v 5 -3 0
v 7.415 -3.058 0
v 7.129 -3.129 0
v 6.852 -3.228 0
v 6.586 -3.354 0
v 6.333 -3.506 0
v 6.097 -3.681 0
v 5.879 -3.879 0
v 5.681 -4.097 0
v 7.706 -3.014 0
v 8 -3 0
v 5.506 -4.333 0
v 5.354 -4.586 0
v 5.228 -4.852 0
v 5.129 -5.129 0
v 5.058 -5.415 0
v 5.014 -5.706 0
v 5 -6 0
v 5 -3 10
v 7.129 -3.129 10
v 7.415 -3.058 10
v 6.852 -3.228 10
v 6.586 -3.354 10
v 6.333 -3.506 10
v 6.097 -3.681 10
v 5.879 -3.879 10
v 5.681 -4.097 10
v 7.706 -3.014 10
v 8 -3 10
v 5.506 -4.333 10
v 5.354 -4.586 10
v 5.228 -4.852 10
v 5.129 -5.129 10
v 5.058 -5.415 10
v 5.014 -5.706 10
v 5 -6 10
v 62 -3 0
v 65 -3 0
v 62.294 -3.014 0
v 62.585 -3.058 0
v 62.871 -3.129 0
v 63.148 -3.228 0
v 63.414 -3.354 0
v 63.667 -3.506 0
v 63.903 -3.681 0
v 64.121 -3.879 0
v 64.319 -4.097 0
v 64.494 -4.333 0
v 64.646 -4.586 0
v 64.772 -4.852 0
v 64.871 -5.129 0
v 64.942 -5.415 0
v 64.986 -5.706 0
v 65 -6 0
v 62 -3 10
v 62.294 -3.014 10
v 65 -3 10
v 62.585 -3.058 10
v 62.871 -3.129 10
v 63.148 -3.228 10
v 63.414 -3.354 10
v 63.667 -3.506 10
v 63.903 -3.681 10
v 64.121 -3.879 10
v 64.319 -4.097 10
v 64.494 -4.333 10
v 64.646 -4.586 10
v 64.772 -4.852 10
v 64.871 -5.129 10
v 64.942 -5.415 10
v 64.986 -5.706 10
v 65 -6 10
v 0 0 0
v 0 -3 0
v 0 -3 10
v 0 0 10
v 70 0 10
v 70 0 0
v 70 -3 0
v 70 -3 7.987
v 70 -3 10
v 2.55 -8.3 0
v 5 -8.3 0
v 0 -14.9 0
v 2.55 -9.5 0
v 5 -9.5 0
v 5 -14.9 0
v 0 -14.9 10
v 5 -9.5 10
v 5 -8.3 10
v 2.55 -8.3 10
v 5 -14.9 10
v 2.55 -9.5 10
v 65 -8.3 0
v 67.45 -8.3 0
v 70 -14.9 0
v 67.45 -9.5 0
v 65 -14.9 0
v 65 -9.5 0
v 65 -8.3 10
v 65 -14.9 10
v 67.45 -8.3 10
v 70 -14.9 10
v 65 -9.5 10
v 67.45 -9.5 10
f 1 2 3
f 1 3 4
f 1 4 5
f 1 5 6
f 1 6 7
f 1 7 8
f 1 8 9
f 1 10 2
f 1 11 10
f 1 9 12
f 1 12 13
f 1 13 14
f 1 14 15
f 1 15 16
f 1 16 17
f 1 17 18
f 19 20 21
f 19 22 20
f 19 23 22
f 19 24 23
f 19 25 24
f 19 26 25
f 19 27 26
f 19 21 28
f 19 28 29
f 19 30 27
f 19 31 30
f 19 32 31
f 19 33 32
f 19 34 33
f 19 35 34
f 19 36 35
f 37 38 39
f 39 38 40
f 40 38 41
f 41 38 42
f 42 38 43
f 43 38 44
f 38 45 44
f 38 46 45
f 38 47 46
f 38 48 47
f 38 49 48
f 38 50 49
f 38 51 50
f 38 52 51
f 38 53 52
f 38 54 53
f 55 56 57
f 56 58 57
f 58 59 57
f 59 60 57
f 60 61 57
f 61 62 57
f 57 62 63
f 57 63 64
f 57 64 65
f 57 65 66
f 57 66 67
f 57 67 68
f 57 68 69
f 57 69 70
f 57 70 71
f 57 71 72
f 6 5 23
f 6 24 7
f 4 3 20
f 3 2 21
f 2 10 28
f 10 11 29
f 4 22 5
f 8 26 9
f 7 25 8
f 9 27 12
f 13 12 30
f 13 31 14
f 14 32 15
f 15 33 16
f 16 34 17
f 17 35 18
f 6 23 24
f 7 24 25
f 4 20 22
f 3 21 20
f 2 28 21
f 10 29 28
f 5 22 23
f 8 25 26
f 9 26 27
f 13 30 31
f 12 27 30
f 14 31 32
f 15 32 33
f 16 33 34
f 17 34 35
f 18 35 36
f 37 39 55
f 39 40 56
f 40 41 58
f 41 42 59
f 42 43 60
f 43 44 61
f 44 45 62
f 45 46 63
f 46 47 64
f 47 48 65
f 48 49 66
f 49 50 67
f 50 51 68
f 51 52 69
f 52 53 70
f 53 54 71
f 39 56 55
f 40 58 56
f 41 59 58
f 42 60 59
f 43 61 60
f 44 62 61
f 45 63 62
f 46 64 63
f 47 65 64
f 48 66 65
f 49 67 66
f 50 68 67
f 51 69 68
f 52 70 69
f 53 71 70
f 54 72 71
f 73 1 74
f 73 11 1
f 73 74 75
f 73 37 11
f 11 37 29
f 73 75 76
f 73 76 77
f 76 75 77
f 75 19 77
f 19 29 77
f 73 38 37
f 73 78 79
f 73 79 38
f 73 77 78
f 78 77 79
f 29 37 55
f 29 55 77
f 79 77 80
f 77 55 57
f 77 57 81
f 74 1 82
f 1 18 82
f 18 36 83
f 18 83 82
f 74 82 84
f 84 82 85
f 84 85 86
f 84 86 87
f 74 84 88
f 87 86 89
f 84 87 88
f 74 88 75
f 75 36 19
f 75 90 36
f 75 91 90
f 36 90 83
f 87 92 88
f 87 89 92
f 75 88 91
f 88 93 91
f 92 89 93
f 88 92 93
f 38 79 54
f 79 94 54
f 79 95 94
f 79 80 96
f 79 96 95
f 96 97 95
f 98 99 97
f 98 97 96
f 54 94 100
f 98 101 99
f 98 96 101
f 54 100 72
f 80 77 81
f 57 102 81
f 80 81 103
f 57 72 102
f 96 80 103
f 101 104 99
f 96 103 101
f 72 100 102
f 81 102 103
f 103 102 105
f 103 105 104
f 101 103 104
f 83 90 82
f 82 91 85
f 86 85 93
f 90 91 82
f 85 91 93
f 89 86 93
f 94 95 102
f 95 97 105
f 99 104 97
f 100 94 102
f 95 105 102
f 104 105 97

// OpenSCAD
// file: bracket_lib.scad
// Shared U-bracket holding a PCB in a slot in each upright. All sizes in mm.
// Part files load this with: use <bracket_lib.scad>
//
// Print settings (Ultimaker Cura, PLA, 0.4 mm nozzle), tuned for strength, not looks.
// Cura profile: BracketStrong.curaprofile
//   Orientation       On its side: U-profile flat on the plate, depth upward.
//                     bracket_printable() already rotates it this way.
//                     Layers then run across the uprights, not up them. No supports needed.
//   Layer Height      0.2 mm (thicker layers bond better than fine ones)
//   Wall Line Count   5 (walls carry most of the load; 2 mm shell each side)
//   Top/Bottom        1.2 mm
//   Infill            40 %, Gyroid (strong in all directions)
//   Printing Temp     +5..10 °C over your normal PLA profile, for better layer bonding
//   Fan Speed         reduce to ~50 %, same reason
//   Adhesion          Brim, 5 mm (the 3 mm floor strip is the thin edge that can lift)

// Concave fillet along Y, filling the corner at the origin towards +X and +Z.
module fillet(r, depth) {
    difference() {
        cube([r, depth, r]);
        translate([r, -1, r]) rotate([-90, 0, 0]) cylinder(r = r, h = depth + 2, $fn = 64);
    }
}

// slot_span:  distance between slot bottoms = PCB width + clearance (critical)
// depth:      along Y; height: top of uprights; base: floor thickness
// wall:       upright thickness
// slot_z:     bottom of slot from floor underside; slot_h: slot height
// slot_depth: how far the slot cuts into the upright, from the inside
// fillet_r:   inside corner floor/upright, 0 for none; keep below slot_z - base
module bracket(slot_span, depth, height, base, wall, slot_z, slot_h, slot_depth, fillet_r) {
    length = slot_span - 2 * slot_depth + 2 * wall;
    echo(length = length);
    difference() {
        union() {
            cube([length, depth, base]);                       // floor
            cube([wall, depth, height]);                       // left upright
            translate([length - wall, 0, 0]) cube([wall, depth, height]);  // right upright
            if (fillet_r > 0) {
                translate([wall, 0, base]) fillet(fillet_r, depth);
                translate([length - wall, 0, base]) mirror([1, 0, 0]) fillet(fillet_r, depth);
            }
        }
        // slots, cut from the inside face; 0.01 overlap avoids zero-thickness skins
        for (x = [wall - slot_depth, length - wall - 0.01])
            translate([x, -1, slot_z]) cube([slot_depth + 0.01, depth + 2, slot_h]);
    }
}

// Same bracket, rotated into print orientation (on its side).
module bracket_printable(slot_span, depth, height, base, wall, slot_z, slot_h, slot_depth, fillet_r) {
    rotate([90, 0, 0])
        bracket(slot_span, depth, height, base, wall, slot_z, slot_h, slot_depth, fillet_r);
}
// main file
// SVB bracket, small. Dimensions from "SVB Bracket small.stl", plus fillets.
// Print settings: see bracket_lib.scad.
use <bracket_lib.scad>

slot_span  = 64.9;  // distance between slot bottoms (critical)
depth      = 10;
height     = 14.9;
base       = 3;
wall       = 5;
slot_z     = 8.3;
slot_h     = 1.2;
slot_depth = 2.45;
fillet_r   = 3;

bracket_printable(slot_span, depth, height, base, wall, slot_z, slot_h, slot_depth, fillet_r);
